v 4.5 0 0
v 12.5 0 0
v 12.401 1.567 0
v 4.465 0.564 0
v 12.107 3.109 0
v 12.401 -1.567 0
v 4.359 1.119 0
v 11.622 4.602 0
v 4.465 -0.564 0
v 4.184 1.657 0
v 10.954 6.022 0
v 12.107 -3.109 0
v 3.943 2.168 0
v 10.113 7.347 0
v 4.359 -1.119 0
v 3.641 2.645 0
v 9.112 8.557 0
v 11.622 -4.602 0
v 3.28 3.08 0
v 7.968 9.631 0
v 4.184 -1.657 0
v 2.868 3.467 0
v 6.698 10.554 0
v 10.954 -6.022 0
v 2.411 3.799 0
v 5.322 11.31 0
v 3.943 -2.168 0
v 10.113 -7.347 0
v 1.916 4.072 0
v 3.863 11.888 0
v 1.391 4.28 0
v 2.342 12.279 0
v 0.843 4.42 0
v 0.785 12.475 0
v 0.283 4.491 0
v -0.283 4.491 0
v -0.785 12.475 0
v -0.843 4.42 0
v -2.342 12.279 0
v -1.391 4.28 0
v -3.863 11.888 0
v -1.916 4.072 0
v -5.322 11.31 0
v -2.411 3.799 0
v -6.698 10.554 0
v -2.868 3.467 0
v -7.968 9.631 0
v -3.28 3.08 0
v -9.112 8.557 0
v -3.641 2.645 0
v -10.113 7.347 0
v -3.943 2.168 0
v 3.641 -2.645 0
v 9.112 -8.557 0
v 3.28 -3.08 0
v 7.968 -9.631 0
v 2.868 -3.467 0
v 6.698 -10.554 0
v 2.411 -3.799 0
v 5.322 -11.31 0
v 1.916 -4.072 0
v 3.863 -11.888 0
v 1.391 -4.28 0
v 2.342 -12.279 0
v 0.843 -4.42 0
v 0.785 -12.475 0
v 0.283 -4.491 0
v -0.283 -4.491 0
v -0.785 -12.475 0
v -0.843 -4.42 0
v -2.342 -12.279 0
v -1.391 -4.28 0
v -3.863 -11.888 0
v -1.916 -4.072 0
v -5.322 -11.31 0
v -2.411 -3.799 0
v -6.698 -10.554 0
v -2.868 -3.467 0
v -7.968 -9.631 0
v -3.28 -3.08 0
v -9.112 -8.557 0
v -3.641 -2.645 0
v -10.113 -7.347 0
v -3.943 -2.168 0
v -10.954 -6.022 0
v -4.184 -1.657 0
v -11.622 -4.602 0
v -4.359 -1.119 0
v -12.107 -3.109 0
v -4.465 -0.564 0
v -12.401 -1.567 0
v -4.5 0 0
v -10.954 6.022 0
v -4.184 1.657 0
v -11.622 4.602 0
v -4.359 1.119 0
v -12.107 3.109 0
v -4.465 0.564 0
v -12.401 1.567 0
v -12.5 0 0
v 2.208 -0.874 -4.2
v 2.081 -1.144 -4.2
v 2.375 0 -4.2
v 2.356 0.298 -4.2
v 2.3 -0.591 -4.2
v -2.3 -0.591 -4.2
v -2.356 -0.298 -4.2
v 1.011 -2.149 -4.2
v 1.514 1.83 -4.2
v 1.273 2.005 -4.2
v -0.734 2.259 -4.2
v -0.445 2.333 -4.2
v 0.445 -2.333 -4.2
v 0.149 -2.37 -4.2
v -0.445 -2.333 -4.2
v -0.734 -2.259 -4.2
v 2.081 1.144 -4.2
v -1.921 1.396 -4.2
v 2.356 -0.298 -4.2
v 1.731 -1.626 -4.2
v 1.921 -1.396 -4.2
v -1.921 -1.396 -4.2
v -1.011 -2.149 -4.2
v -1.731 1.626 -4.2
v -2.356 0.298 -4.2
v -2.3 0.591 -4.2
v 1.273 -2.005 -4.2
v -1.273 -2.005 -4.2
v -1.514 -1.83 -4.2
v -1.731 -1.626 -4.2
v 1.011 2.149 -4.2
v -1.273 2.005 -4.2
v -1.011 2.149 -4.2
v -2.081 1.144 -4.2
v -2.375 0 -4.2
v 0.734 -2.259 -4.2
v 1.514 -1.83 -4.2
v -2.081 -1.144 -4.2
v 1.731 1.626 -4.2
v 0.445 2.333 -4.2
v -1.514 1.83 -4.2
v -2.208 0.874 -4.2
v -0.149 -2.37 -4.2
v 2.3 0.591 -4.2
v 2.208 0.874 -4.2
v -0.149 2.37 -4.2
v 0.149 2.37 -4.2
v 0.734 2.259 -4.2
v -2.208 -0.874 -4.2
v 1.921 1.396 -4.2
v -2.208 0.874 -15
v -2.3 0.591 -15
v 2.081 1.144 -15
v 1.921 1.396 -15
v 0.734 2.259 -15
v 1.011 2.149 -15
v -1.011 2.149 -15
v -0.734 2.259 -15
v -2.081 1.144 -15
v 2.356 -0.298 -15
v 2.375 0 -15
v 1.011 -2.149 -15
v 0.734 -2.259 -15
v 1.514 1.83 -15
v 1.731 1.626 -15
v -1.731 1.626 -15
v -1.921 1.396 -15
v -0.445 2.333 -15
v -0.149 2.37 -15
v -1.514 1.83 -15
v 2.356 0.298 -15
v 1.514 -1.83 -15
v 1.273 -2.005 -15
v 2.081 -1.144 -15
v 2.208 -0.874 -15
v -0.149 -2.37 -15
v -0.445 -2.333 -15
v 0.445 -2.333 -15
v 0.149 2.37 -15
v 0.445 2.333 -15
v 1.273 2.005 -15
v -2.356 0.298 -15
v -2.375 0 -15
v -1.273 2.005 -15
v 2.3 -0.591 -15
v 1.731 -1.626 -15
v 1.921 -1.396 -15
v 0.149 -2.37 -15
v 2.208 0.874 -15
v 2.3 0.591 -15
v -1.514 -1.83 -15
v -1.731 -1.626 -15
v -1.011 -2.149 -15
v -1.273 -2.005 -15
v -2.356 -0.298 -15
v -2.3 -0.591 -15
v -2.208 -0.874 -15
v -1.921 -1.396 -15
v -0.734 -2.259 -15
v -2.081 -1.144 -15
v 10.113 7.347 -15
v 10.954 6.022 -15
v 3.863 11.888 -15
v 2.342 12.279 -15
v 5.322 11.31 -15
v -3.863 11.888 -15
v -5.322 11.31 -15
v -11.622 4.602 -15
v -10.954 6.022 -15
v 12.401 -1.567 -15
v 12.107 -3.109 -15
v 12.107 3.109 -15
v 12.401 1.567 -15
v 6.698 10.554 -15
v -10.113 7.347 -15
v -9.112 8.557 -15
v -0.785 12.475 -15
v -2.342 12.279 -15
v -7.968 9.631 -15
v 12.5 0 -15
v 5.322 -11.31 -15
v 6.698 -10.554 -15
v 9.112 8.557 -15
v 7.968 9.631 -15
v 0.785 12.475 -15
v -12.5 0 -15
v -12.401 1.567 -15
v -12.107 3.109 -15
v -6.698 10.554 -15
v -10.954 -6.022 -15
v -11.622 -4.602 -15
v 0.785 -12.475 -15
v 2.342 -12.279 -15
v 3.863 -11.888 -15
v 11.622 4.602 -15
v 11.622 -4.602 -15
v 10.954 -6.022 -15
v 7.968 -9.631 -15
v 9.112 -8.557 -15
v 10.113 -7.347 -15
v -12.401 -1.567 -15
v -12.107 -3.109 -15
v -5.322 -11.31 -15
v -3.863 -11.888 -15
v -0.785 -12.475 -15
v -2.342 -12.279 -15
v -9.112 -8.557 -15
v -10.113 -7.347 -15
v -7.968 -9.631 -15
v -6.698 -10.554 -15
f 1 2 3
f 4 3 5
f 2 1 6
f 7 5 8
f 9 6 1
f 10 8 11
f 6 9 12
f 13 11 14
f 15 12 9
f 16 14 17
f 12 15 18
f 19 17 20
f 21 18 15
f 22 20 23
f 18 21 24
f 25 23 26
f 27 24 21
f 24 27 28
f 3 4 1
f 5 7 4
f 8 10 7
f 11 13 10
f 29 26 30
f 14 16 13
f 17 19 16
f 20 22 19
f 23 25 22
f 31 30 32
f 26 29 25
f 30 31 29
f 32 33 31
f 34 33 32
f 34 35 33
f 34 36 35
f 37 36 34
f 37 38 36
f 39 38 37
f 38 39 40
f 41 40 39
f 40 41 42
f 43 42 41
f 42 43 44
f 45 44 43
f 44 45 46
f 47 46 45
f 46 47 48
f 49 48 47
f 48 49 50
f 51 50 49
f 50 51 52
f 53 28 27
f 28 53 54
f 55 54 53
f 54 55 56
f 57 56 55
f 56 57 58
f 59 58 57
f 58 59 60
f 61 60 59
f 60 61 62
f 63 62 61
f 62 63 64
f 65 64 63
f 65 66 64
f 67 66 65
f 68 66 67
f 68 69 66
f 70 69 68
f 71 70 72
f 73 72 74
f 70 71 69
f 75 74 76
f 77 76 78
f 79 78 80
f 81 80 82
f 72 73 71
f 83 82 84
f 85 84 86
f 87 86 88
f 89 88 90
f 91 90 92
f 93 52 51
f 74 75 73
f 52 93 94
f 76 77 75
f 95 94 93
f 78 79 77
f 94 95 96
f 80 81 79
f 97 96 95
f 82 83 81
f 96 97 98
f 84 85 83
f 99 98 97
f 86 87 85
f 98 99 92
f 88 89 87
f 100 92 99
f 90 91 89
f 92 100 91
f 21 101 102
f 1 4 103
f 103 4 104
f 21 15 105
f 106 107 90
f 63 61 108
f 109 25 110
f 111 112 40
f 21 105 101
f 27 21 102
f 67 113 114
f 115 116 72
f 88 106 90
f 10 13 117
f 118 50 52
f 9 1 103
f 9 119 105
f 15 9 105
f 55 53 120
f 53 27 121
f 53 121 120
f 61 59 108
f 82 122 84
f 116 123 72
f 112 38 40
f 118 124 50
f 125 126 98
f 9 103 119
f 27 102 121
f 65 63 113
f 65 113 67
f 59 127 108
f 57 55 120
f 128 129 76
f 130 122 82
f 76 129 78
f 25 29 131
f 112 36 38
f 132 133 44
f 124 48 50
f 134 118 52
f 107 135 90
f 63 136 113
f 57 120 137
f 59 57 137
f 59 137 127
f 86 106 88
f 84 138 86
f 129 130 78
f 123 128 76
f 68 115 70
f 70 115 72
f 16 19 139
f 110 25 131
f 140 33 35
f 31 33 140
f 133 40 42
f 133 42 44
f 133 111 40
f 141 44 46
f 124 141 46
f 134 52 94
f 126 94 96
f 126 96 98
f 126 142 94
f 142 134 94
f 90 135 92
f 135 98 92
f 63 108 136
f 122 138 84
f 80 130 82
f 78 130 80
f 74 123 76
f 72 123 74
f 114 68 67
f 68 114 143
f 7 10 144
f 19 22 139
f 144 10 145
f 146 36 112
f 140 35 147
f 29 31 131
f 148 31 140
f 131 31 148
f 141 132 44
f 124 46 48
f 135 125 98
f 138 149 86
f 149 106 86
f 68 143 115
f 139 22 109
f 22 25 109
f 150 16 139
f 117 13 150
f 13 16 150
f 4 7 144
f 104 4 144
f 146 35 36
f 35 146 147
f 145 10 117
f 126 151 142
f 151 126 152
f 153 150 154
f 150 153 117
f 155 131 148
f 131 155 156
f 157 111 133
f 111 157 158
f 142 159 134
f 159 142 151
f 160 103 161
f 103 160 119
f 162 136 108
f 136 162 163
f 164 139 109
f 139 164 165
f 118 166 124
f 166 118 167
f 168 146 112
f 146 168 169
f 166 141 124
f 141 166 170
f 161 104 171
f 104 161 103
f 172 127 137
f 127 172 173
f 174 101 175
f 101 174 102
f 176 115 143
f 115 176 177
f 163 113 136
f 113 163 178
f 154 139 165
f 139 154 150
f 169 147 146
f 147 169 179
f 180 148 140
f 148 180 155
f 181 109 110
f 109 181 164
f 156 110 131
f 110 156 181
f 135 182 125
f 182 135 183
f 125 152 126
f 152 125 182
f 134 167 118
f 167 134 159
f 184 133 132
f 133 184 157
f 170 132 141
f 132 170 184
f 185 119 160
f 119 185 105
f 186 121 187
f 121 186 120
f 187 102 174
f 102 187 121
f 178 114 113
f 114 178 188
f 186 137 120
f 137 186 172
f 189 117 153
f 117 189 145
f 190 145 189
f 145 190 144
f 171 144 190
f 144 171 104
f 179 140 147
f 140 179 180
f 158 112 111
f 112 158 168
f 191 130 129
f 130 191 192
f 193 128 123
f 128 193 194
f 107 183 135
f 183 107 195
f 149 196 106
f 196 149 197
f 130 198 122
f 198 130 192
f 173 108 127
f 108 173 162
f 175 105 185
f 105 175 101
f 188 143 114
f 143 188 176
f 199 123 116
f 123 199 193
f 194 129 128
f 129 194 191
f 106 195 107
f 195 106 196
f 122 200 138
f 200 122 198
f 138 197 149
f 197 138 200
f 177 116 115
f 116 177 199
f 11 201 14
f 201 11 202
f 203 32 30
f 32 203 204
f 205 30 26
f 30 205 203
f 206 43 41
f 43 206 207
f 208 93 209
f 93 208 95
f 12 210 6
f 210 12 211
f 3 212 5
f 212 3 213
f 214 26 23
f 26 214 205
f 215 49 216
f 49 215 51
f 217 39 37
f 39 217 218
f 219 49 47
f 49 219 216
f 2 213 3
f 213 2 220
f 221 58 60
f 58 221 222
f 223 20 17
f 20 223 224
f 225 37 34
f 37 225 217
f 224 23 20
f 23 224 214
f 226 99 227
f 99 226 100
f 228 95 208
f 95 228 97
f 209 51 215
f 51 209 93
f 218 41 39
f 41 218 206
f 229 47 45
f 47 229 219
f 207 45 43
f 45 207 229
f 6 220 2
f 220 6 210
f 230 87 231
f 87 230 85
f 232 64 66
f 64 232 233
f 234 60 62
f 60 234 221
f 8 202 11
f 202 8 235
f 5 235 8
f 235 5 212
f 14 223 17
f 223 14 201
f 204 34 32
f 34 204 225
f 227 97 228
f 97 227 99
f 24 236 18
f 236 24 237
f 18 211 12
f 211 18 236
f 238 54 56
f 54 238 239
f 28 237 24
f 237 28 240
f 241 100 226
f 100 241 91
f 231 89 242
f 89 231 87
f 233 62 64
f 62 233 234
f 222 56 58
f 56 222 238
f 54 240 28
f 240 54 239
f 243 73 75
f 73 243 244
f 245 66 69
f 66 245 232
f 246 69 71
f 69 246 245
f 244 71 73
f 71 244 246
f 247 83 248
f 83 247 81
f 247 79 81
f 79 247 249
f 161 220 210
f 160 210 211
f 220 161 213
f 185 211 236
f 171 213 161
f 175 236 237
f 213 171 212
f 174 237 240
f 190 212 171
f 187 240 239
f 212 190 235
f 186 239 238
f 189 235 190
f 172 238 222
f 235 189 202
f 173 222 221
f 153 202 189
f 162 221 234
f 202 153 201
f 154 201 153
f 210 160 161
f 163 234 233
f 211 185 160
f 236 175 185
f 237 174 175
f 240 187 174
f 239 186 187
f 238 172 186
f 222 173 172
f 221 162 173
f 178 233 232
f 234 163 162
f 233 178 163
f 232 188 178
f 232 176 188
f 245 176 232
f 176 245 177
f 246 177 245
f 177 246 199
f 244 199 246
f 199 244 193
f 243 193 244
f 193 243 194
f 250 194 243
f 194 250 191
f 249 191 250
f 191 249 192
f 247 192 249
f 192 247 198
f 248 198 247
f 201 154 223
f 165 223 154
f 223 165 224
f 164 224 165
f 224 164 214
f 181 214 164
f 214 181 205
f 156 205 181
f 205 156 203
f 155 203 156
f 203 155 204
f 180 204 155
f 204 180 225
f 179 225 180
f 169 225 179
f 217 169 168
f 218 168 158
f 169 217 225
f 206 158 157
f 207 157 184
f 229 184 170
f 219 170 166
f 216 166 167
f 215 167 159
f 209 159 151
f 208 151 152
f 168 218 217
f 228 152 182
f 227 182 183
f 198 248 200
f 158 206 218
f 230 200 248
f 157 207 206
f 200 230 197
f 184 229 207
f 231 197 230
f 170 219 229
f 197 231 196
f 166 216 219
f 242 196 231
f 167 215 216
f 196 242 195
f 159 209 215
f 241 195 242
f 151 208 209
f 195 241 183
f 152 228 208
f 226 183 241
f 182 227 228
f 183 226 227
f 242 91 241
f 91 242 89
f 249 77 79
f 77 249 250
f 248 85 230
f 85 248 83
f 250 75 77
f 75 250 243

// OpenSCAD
$fn = 50;

difference() {
	union() {
		translate(v = [0, 0, -15.0]) {
			cylinder(h = 15, r = 12.5);
		}
	}
	union() {
		translate(v = [0, 0, 0]) {
			rotate(a = [0, 0, 0]) {
				difference() {
					union() {
						translate(v = [0, 0, -18.0]) {
							cylinder(h = 18, r = 2.25);
						}
						translate(v = [0, 0, -4.2]) {
							cylinder(h = 4.2, r1 = 2.375, r2 = 4.5);
						}
						translate(v = [0, 0, -18.0]) {
							cylinder(h = 18, r = 2.375);
						}
						translate(v = [0, 0, -18.0]) {
							cylinder(h = 18, r = 2.25);
						}
					}
					union();
				}
			}
		}
	}
}
